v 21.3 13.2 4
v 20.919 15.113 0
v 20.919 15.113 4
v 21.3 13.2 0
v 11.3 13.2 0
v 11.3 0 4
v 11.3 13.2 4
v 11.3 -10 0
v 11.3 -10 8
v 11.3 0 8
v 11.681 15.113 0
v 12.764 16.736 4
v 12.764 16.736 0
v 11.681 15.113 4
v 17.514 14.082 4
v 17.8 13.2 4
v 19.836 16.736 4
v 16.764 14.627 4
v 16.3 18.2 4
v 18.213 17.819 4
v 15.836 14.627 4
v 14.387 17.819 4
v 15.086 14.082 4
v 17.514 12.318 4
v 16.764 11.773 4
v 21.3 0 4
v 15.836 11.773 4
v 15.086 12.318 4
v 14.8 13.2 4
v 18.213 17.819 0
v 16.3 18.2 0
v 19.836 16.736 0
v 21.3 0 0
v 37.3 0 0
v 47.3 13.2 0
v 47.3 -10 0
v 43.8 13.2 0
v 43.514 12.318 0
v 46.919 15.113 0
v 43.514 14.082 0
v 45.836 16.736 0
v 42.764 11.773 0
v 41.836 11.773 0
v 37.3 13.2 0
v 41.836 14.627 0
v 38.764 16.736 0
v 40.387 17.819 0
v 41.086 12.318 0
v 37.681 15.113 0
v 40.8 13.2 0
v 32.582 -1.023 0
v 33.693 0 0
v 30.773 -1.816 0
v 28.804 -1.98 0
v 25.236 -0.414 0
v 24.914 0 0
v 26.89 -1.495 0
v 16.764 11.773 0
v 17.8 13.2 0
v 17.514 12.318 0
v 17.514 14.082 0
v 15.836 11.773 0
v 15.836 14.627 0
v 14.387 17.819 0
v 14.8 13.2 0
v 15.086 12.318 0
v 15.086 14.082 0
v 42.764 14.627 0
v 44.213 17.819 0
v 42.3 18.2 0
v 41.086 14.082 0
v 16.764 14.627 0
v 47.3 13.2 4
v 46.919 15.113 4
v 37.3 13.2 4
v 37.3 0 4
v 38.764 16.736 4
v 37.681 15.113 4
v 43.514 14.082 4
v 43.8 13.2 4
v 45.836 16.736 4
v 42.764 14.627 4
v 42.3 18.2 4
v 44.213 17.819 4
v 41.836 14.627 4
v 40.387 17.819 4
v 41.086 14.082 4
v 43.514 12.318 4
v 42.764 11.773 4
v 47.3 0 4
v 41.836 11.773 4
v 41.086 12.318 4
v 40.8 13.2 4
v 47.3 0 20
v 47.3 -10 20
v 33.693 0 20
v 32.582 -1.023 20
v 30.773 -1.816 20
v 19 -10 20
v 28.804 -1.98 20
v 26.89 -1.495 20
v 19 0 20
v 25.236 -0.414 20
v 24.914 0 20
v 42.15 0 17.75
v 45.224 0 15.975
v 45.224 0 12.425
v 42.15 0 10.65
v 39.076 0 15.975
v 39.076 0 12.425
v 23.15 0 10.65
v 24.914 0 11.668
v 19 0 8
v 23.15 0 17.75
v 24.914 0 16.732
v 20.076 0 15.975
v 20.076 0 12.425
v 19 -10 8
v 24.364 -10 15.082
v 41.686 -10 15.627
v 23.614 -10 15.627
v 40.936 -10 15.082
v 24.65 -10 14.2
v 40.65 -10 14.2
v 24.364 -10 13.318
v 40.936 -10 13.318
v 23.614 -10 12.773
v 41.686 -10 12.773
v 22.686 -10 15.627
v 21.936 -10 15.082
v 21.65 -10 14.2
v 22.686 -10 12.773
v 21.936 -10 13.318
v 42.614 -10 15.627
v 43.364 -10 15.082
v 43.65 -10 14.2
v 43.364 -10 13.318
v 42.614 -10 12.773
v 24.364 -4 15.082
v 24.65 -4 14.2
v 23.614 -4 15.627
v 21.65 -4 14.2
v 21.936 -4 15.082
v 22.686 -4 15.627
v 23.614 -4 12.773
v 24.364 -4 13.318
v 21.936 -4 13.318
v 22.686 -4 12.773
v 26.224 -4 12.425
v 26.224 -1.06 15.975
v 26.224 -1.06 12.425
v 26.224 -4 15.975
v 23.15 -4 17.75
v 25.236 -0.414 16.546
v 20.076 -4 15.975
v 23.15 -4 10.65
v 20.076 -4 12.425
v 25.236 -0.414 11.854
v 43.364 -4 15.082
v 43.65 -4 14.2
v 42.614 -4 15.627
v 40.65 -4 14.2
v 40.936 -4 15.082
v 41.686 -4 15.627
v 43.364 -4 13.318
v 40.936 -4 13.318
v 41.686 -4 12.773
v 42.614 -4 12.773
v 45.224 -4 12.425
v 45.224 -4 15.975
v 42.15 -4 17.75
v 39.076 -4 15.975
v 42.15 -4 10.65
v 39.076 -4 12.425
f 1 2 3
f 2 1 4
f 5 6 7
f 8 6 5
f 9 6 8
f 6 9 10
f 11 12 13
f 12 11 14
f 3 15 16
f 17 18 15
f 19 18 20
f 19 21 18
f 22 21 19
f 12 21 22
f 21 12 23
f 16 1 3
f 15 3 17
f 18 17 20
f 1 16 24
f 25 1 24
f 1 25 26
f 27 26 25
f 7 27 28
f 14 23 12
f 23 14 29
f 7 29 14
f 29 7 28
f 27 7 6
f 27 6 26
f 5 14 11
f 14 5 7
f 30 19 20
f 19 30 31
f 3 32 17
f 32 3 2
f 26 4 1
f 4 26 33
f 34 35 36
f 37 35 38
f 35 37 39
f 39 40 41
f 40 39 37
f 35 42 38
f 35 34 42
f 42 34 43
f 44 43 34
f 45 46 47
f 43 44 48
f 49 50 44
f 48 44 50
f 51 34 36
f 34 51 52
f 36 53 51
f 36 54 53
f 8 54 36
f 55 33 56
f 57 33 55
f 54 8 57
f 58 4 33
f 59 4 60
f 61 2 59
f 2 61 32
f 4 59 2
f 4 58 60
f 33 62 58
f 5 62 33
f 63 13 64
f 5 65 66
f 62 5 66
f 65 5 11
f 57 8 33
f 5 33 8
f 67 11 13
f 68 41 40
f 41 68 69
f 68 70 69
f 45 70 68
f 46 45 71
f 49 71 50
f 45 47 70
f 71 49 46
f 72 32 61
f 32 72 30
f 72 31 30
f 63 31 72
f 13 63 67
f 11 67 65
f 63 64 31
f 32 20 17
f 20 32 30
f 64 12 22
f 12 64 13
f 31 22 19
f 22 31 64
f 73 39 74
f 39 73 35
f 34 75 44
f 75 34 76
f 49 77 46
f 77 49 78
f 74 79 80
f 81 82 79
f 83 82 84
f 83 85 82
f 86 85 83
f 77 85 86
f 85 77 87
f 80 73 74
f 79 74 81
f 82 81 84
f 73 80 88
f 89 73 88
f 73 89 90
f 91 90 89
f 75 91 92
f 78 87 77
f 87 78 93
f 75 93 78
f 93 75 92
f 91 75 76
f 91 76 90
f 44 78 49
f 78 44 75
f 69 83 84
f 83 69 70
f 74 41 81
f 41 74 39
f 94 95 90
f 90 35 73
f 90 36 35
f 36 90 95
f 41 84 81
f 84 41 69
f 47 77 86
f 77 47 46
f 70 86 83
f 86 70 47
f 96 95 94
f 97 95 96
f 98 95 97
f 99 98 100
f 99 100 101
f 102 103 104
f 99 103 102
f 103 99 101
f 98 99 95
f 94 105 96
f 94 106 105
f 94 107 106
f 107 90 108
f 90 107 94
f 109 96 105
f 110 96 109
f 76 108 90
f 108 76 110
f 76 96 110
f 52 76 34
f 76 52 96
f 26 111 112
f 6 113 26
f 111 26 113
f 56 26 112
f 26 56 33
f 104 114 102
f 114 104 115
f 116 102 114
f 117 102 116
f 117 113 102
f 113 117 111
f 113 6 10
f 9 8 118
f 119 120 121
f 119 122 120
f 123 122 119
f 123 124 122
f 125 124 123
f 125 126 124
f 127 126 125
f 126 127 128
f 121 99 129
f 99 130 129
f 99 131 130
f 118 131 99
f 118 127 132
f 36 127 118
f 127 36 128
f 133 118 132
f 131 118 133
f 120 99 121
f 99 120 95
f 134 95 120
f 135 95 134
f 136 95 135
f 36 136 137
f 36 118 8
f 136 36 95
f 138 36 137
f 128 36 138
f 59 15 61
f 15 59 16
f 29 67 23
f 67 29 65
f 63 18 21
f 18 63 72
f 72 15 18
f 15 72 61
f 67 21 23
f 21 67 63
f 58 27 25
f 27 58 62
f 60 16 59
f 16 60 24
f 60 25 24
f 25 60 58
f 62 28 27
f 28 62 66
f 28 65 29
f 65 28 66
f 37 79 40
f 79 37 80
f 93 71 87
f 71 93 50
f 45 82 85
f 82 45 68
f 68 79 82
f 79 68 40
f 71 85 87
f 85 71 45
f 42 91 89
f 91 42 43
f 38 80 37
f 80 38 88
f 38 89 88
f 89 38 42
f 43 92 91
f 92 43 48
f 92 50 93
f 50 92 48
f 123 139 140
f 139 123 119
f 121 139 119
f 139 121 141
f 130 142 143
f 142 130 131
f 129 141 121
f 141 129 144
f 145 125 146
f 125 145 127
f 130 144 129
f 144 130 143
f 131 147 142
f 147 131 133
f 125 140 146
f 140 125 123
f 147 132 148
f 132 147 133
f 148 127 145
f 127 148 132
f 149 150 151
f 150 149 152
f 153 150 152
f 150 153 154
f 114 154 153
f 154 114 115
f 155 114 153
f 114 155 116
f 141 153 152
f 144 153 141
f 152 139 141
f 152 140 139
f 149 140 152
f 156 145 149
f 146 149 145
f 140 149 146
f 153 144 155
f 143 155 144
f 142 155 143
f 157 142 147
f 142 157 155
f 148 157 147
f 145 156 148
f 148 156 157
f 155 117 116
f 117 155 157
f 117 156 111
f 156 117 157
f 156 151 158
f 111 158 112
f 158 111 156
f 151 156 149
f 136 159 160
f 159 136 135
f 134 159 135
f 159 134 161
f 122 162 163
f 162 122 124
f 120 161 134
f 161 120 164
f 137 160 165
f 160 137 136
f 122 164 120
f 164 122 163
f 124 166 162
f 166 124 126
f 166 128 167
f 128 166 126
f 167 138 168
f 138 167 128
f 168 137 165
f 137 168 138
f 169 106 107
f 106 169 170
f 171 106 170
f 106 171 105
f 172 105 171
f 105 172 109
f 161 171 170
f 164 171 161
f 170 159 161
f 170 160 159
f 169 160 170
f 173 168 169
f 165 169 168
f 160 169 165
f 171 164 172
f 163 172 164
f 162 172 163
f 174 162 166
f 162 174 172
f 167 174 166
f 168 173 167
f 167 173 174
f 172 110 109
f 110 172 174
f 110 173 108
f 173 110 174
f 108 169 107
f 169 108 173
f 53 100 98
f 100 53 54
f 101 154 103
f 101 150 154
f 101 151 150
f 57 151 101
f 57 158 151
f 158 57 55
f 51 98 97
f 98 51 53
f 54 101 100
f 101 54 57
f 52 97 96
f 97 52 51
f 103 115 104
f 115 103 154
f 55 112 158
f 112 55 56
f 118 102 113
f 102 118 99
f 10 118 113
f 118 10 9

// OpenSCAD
// file: z-axis-bottom-nema14.scad
// PRUSA iteration3
// Z axis bottom holder
// GNU GPL v3
// Josef Průša <iam@josefprusa.cz> and contributors
// http://www.reprap.org/wiki/Prusa_Mendel
// http://prusamendel.org

module z_bottom_base()
{
  // plate touching the base
  cube([8,40,16+25]);
  // plate touching the base
  translate([0,-5,0]) cube([30,5.01,22]);
  // plate touching the base
  translate([0,-5,0]) cube([50,50,5]);
}

module z_bottom_fancy()
{
  // corner cutouts
  translate([0.5,-2.5,0]) rotate([0,0,-45-180]) translate([-15,0,-1]) cube([30,30,51]);
  translate([8,0,12+20+6]) rotate([0,-90,0]) translate([0,-5,0]) cube([30,50,30]);
  translate([20,-2,12+8]) rotate([45,0,0]) rotate([0,-90,0]) translate([0,-5,0]) cube([30,50,30]);
  translate([8+10,20,12+30]) rotate([-45,0,0]) rotate([0,-90,0]) translate([0,-5,0]) cube([30,50,30]);
  translate([0.5,40-0.5,0]) rotate([0,0,-45+90]) translate([-15,0,-1]) cube([30,30,51]);
  translate([50-2.5,-5+2.5,0]) rotate([0,0,-45-90]) translate([-15,0,-1]) cube([30,30,51]);
  translate([50-2.5,63,0]) rotate([0,0,-45-90]) translate([-15,0,-1]) cube([30,30,51]);
  translate([0,0,5]) rotate([45+180,0,0]) rotate([0,0,-45+90]) translate([0,0,-15]) cube([30,30,30]);
  // Stiffner cut out
  translate([30,0-10,5.5]) rotate([0,-45,0]) translate([0,-5,0]) cube([30,50,30]);

  translate([29.3, 26.1, 1]) cylinder(d=24.6, h=10, center=true, $fn=50);
}

module z_bottom_holes()
{
  // Frame mounting screw holes
  translate([-1, 10, 10+5]) rotate([0, 90, 0]) cylinder(h=20, r=1.8, $fn=30);
  translate([-1, 10+20, 10+5]) rotate([0, 90, 0]) cylinder(h=20, r=1.8, $fn=30);
  translate([-1, 10+10, 10+20+5]) rotate([0, 90, 0]) cylinder(h=20, r=1.8, $fn=30);

  // Frame mounting screw head holes
  translate([4, 10, 10+5]) rotate([0, 90, 0]) cylinder(h=20, r=3.1, $fn=30);
  translate([4, 10+20, 10+5]) rotate([0, 90, 0]) cylinder(h=20, r=3.1, $fn=30);
  translate([4, 10+10, 10+20+5]) rotate([0, 90, 0]) cylinder(h=20, r=3.1, $fn=30);
  translate([4, 10+10-3.1, 10+20+5]) cube([10, 6.2, 10]);

  // Z rod holder
  translate([25+4.3,4.2,-1]) rotate([0,0,0]) cylinder(h=50, r=4.1, $fn=15);

  // motor mounting
  translate([25+4.3, 21+5.2, -1]) {
    for (i=[-1, 1]) for (j=[-1, 1]) {
      translate([i*13, j*13, -1]) cylinder(h=20, r=1.8, $fn=30);
    }
  }
}

// Final part
module z_bottom_holder()
{
  translate([0,8,0]) z_axis_bottom();
  // mirror([0,1,0]) translate([0,8,0]) z_axis_bottom();
}

module z_axis_bottom()
{
  difference() {
    z_bottom_base();
    z_bottom_fancy();
    z_bottom_holes();
  }
}

z_bottom_holder();
% mirror([0,0,1]) translate([29.3,34.2,-5.28]) import("../inc/nema14.stl", convexity=3);
// main file
// Camera: 28,7,6,68,0,206,188
// Name: Z Endstop Holder

module z_endstop_holder()
{
  difference() {
    union() {
      for (i=[0,1]) hull() for (j=[-5,13.2]) translate([16.3+(i*26),j,4/2]) cylinder(d=10, h=4, center=true);
      translate([29.3,-5,20/2]) cube([36,10,20], center=true);
    }
    # for (i=[0,1]) translate([16.3+(i*26),13.2,4/2]) cylinder(d=3, h=6, center=true, $fn=10);
    translate([29.3,4,12/2]) cylinder(d=12, h=30, center=true);
    for (i=[0,19]) translate([29.3-6.15+i, -7, 14.2]) {
      rotate([90,0,0]) cylinder(d=3, h=25, center=true, $fn=10);
      translate([0,10,0]) rotate([90,30,0]) cylinder(d=7.1, h=14, center=true, $fn=6);
    }
    translate([9,-5,18]) cube([20,20,20], center=true);
  }
}

z_endstop_holder();

// use <../inc/opto-endstop.scad>
// # translate ([12,-11,9]) mirror([0,1,0]) opto_endstop();

use <z-axis-bottom-nema14.scad>
% mirror([0,0,1]) z_axis_bottom();
% translate([29.3,4.2,-10]) cylinder(d=8, h=60, $fn=20);
